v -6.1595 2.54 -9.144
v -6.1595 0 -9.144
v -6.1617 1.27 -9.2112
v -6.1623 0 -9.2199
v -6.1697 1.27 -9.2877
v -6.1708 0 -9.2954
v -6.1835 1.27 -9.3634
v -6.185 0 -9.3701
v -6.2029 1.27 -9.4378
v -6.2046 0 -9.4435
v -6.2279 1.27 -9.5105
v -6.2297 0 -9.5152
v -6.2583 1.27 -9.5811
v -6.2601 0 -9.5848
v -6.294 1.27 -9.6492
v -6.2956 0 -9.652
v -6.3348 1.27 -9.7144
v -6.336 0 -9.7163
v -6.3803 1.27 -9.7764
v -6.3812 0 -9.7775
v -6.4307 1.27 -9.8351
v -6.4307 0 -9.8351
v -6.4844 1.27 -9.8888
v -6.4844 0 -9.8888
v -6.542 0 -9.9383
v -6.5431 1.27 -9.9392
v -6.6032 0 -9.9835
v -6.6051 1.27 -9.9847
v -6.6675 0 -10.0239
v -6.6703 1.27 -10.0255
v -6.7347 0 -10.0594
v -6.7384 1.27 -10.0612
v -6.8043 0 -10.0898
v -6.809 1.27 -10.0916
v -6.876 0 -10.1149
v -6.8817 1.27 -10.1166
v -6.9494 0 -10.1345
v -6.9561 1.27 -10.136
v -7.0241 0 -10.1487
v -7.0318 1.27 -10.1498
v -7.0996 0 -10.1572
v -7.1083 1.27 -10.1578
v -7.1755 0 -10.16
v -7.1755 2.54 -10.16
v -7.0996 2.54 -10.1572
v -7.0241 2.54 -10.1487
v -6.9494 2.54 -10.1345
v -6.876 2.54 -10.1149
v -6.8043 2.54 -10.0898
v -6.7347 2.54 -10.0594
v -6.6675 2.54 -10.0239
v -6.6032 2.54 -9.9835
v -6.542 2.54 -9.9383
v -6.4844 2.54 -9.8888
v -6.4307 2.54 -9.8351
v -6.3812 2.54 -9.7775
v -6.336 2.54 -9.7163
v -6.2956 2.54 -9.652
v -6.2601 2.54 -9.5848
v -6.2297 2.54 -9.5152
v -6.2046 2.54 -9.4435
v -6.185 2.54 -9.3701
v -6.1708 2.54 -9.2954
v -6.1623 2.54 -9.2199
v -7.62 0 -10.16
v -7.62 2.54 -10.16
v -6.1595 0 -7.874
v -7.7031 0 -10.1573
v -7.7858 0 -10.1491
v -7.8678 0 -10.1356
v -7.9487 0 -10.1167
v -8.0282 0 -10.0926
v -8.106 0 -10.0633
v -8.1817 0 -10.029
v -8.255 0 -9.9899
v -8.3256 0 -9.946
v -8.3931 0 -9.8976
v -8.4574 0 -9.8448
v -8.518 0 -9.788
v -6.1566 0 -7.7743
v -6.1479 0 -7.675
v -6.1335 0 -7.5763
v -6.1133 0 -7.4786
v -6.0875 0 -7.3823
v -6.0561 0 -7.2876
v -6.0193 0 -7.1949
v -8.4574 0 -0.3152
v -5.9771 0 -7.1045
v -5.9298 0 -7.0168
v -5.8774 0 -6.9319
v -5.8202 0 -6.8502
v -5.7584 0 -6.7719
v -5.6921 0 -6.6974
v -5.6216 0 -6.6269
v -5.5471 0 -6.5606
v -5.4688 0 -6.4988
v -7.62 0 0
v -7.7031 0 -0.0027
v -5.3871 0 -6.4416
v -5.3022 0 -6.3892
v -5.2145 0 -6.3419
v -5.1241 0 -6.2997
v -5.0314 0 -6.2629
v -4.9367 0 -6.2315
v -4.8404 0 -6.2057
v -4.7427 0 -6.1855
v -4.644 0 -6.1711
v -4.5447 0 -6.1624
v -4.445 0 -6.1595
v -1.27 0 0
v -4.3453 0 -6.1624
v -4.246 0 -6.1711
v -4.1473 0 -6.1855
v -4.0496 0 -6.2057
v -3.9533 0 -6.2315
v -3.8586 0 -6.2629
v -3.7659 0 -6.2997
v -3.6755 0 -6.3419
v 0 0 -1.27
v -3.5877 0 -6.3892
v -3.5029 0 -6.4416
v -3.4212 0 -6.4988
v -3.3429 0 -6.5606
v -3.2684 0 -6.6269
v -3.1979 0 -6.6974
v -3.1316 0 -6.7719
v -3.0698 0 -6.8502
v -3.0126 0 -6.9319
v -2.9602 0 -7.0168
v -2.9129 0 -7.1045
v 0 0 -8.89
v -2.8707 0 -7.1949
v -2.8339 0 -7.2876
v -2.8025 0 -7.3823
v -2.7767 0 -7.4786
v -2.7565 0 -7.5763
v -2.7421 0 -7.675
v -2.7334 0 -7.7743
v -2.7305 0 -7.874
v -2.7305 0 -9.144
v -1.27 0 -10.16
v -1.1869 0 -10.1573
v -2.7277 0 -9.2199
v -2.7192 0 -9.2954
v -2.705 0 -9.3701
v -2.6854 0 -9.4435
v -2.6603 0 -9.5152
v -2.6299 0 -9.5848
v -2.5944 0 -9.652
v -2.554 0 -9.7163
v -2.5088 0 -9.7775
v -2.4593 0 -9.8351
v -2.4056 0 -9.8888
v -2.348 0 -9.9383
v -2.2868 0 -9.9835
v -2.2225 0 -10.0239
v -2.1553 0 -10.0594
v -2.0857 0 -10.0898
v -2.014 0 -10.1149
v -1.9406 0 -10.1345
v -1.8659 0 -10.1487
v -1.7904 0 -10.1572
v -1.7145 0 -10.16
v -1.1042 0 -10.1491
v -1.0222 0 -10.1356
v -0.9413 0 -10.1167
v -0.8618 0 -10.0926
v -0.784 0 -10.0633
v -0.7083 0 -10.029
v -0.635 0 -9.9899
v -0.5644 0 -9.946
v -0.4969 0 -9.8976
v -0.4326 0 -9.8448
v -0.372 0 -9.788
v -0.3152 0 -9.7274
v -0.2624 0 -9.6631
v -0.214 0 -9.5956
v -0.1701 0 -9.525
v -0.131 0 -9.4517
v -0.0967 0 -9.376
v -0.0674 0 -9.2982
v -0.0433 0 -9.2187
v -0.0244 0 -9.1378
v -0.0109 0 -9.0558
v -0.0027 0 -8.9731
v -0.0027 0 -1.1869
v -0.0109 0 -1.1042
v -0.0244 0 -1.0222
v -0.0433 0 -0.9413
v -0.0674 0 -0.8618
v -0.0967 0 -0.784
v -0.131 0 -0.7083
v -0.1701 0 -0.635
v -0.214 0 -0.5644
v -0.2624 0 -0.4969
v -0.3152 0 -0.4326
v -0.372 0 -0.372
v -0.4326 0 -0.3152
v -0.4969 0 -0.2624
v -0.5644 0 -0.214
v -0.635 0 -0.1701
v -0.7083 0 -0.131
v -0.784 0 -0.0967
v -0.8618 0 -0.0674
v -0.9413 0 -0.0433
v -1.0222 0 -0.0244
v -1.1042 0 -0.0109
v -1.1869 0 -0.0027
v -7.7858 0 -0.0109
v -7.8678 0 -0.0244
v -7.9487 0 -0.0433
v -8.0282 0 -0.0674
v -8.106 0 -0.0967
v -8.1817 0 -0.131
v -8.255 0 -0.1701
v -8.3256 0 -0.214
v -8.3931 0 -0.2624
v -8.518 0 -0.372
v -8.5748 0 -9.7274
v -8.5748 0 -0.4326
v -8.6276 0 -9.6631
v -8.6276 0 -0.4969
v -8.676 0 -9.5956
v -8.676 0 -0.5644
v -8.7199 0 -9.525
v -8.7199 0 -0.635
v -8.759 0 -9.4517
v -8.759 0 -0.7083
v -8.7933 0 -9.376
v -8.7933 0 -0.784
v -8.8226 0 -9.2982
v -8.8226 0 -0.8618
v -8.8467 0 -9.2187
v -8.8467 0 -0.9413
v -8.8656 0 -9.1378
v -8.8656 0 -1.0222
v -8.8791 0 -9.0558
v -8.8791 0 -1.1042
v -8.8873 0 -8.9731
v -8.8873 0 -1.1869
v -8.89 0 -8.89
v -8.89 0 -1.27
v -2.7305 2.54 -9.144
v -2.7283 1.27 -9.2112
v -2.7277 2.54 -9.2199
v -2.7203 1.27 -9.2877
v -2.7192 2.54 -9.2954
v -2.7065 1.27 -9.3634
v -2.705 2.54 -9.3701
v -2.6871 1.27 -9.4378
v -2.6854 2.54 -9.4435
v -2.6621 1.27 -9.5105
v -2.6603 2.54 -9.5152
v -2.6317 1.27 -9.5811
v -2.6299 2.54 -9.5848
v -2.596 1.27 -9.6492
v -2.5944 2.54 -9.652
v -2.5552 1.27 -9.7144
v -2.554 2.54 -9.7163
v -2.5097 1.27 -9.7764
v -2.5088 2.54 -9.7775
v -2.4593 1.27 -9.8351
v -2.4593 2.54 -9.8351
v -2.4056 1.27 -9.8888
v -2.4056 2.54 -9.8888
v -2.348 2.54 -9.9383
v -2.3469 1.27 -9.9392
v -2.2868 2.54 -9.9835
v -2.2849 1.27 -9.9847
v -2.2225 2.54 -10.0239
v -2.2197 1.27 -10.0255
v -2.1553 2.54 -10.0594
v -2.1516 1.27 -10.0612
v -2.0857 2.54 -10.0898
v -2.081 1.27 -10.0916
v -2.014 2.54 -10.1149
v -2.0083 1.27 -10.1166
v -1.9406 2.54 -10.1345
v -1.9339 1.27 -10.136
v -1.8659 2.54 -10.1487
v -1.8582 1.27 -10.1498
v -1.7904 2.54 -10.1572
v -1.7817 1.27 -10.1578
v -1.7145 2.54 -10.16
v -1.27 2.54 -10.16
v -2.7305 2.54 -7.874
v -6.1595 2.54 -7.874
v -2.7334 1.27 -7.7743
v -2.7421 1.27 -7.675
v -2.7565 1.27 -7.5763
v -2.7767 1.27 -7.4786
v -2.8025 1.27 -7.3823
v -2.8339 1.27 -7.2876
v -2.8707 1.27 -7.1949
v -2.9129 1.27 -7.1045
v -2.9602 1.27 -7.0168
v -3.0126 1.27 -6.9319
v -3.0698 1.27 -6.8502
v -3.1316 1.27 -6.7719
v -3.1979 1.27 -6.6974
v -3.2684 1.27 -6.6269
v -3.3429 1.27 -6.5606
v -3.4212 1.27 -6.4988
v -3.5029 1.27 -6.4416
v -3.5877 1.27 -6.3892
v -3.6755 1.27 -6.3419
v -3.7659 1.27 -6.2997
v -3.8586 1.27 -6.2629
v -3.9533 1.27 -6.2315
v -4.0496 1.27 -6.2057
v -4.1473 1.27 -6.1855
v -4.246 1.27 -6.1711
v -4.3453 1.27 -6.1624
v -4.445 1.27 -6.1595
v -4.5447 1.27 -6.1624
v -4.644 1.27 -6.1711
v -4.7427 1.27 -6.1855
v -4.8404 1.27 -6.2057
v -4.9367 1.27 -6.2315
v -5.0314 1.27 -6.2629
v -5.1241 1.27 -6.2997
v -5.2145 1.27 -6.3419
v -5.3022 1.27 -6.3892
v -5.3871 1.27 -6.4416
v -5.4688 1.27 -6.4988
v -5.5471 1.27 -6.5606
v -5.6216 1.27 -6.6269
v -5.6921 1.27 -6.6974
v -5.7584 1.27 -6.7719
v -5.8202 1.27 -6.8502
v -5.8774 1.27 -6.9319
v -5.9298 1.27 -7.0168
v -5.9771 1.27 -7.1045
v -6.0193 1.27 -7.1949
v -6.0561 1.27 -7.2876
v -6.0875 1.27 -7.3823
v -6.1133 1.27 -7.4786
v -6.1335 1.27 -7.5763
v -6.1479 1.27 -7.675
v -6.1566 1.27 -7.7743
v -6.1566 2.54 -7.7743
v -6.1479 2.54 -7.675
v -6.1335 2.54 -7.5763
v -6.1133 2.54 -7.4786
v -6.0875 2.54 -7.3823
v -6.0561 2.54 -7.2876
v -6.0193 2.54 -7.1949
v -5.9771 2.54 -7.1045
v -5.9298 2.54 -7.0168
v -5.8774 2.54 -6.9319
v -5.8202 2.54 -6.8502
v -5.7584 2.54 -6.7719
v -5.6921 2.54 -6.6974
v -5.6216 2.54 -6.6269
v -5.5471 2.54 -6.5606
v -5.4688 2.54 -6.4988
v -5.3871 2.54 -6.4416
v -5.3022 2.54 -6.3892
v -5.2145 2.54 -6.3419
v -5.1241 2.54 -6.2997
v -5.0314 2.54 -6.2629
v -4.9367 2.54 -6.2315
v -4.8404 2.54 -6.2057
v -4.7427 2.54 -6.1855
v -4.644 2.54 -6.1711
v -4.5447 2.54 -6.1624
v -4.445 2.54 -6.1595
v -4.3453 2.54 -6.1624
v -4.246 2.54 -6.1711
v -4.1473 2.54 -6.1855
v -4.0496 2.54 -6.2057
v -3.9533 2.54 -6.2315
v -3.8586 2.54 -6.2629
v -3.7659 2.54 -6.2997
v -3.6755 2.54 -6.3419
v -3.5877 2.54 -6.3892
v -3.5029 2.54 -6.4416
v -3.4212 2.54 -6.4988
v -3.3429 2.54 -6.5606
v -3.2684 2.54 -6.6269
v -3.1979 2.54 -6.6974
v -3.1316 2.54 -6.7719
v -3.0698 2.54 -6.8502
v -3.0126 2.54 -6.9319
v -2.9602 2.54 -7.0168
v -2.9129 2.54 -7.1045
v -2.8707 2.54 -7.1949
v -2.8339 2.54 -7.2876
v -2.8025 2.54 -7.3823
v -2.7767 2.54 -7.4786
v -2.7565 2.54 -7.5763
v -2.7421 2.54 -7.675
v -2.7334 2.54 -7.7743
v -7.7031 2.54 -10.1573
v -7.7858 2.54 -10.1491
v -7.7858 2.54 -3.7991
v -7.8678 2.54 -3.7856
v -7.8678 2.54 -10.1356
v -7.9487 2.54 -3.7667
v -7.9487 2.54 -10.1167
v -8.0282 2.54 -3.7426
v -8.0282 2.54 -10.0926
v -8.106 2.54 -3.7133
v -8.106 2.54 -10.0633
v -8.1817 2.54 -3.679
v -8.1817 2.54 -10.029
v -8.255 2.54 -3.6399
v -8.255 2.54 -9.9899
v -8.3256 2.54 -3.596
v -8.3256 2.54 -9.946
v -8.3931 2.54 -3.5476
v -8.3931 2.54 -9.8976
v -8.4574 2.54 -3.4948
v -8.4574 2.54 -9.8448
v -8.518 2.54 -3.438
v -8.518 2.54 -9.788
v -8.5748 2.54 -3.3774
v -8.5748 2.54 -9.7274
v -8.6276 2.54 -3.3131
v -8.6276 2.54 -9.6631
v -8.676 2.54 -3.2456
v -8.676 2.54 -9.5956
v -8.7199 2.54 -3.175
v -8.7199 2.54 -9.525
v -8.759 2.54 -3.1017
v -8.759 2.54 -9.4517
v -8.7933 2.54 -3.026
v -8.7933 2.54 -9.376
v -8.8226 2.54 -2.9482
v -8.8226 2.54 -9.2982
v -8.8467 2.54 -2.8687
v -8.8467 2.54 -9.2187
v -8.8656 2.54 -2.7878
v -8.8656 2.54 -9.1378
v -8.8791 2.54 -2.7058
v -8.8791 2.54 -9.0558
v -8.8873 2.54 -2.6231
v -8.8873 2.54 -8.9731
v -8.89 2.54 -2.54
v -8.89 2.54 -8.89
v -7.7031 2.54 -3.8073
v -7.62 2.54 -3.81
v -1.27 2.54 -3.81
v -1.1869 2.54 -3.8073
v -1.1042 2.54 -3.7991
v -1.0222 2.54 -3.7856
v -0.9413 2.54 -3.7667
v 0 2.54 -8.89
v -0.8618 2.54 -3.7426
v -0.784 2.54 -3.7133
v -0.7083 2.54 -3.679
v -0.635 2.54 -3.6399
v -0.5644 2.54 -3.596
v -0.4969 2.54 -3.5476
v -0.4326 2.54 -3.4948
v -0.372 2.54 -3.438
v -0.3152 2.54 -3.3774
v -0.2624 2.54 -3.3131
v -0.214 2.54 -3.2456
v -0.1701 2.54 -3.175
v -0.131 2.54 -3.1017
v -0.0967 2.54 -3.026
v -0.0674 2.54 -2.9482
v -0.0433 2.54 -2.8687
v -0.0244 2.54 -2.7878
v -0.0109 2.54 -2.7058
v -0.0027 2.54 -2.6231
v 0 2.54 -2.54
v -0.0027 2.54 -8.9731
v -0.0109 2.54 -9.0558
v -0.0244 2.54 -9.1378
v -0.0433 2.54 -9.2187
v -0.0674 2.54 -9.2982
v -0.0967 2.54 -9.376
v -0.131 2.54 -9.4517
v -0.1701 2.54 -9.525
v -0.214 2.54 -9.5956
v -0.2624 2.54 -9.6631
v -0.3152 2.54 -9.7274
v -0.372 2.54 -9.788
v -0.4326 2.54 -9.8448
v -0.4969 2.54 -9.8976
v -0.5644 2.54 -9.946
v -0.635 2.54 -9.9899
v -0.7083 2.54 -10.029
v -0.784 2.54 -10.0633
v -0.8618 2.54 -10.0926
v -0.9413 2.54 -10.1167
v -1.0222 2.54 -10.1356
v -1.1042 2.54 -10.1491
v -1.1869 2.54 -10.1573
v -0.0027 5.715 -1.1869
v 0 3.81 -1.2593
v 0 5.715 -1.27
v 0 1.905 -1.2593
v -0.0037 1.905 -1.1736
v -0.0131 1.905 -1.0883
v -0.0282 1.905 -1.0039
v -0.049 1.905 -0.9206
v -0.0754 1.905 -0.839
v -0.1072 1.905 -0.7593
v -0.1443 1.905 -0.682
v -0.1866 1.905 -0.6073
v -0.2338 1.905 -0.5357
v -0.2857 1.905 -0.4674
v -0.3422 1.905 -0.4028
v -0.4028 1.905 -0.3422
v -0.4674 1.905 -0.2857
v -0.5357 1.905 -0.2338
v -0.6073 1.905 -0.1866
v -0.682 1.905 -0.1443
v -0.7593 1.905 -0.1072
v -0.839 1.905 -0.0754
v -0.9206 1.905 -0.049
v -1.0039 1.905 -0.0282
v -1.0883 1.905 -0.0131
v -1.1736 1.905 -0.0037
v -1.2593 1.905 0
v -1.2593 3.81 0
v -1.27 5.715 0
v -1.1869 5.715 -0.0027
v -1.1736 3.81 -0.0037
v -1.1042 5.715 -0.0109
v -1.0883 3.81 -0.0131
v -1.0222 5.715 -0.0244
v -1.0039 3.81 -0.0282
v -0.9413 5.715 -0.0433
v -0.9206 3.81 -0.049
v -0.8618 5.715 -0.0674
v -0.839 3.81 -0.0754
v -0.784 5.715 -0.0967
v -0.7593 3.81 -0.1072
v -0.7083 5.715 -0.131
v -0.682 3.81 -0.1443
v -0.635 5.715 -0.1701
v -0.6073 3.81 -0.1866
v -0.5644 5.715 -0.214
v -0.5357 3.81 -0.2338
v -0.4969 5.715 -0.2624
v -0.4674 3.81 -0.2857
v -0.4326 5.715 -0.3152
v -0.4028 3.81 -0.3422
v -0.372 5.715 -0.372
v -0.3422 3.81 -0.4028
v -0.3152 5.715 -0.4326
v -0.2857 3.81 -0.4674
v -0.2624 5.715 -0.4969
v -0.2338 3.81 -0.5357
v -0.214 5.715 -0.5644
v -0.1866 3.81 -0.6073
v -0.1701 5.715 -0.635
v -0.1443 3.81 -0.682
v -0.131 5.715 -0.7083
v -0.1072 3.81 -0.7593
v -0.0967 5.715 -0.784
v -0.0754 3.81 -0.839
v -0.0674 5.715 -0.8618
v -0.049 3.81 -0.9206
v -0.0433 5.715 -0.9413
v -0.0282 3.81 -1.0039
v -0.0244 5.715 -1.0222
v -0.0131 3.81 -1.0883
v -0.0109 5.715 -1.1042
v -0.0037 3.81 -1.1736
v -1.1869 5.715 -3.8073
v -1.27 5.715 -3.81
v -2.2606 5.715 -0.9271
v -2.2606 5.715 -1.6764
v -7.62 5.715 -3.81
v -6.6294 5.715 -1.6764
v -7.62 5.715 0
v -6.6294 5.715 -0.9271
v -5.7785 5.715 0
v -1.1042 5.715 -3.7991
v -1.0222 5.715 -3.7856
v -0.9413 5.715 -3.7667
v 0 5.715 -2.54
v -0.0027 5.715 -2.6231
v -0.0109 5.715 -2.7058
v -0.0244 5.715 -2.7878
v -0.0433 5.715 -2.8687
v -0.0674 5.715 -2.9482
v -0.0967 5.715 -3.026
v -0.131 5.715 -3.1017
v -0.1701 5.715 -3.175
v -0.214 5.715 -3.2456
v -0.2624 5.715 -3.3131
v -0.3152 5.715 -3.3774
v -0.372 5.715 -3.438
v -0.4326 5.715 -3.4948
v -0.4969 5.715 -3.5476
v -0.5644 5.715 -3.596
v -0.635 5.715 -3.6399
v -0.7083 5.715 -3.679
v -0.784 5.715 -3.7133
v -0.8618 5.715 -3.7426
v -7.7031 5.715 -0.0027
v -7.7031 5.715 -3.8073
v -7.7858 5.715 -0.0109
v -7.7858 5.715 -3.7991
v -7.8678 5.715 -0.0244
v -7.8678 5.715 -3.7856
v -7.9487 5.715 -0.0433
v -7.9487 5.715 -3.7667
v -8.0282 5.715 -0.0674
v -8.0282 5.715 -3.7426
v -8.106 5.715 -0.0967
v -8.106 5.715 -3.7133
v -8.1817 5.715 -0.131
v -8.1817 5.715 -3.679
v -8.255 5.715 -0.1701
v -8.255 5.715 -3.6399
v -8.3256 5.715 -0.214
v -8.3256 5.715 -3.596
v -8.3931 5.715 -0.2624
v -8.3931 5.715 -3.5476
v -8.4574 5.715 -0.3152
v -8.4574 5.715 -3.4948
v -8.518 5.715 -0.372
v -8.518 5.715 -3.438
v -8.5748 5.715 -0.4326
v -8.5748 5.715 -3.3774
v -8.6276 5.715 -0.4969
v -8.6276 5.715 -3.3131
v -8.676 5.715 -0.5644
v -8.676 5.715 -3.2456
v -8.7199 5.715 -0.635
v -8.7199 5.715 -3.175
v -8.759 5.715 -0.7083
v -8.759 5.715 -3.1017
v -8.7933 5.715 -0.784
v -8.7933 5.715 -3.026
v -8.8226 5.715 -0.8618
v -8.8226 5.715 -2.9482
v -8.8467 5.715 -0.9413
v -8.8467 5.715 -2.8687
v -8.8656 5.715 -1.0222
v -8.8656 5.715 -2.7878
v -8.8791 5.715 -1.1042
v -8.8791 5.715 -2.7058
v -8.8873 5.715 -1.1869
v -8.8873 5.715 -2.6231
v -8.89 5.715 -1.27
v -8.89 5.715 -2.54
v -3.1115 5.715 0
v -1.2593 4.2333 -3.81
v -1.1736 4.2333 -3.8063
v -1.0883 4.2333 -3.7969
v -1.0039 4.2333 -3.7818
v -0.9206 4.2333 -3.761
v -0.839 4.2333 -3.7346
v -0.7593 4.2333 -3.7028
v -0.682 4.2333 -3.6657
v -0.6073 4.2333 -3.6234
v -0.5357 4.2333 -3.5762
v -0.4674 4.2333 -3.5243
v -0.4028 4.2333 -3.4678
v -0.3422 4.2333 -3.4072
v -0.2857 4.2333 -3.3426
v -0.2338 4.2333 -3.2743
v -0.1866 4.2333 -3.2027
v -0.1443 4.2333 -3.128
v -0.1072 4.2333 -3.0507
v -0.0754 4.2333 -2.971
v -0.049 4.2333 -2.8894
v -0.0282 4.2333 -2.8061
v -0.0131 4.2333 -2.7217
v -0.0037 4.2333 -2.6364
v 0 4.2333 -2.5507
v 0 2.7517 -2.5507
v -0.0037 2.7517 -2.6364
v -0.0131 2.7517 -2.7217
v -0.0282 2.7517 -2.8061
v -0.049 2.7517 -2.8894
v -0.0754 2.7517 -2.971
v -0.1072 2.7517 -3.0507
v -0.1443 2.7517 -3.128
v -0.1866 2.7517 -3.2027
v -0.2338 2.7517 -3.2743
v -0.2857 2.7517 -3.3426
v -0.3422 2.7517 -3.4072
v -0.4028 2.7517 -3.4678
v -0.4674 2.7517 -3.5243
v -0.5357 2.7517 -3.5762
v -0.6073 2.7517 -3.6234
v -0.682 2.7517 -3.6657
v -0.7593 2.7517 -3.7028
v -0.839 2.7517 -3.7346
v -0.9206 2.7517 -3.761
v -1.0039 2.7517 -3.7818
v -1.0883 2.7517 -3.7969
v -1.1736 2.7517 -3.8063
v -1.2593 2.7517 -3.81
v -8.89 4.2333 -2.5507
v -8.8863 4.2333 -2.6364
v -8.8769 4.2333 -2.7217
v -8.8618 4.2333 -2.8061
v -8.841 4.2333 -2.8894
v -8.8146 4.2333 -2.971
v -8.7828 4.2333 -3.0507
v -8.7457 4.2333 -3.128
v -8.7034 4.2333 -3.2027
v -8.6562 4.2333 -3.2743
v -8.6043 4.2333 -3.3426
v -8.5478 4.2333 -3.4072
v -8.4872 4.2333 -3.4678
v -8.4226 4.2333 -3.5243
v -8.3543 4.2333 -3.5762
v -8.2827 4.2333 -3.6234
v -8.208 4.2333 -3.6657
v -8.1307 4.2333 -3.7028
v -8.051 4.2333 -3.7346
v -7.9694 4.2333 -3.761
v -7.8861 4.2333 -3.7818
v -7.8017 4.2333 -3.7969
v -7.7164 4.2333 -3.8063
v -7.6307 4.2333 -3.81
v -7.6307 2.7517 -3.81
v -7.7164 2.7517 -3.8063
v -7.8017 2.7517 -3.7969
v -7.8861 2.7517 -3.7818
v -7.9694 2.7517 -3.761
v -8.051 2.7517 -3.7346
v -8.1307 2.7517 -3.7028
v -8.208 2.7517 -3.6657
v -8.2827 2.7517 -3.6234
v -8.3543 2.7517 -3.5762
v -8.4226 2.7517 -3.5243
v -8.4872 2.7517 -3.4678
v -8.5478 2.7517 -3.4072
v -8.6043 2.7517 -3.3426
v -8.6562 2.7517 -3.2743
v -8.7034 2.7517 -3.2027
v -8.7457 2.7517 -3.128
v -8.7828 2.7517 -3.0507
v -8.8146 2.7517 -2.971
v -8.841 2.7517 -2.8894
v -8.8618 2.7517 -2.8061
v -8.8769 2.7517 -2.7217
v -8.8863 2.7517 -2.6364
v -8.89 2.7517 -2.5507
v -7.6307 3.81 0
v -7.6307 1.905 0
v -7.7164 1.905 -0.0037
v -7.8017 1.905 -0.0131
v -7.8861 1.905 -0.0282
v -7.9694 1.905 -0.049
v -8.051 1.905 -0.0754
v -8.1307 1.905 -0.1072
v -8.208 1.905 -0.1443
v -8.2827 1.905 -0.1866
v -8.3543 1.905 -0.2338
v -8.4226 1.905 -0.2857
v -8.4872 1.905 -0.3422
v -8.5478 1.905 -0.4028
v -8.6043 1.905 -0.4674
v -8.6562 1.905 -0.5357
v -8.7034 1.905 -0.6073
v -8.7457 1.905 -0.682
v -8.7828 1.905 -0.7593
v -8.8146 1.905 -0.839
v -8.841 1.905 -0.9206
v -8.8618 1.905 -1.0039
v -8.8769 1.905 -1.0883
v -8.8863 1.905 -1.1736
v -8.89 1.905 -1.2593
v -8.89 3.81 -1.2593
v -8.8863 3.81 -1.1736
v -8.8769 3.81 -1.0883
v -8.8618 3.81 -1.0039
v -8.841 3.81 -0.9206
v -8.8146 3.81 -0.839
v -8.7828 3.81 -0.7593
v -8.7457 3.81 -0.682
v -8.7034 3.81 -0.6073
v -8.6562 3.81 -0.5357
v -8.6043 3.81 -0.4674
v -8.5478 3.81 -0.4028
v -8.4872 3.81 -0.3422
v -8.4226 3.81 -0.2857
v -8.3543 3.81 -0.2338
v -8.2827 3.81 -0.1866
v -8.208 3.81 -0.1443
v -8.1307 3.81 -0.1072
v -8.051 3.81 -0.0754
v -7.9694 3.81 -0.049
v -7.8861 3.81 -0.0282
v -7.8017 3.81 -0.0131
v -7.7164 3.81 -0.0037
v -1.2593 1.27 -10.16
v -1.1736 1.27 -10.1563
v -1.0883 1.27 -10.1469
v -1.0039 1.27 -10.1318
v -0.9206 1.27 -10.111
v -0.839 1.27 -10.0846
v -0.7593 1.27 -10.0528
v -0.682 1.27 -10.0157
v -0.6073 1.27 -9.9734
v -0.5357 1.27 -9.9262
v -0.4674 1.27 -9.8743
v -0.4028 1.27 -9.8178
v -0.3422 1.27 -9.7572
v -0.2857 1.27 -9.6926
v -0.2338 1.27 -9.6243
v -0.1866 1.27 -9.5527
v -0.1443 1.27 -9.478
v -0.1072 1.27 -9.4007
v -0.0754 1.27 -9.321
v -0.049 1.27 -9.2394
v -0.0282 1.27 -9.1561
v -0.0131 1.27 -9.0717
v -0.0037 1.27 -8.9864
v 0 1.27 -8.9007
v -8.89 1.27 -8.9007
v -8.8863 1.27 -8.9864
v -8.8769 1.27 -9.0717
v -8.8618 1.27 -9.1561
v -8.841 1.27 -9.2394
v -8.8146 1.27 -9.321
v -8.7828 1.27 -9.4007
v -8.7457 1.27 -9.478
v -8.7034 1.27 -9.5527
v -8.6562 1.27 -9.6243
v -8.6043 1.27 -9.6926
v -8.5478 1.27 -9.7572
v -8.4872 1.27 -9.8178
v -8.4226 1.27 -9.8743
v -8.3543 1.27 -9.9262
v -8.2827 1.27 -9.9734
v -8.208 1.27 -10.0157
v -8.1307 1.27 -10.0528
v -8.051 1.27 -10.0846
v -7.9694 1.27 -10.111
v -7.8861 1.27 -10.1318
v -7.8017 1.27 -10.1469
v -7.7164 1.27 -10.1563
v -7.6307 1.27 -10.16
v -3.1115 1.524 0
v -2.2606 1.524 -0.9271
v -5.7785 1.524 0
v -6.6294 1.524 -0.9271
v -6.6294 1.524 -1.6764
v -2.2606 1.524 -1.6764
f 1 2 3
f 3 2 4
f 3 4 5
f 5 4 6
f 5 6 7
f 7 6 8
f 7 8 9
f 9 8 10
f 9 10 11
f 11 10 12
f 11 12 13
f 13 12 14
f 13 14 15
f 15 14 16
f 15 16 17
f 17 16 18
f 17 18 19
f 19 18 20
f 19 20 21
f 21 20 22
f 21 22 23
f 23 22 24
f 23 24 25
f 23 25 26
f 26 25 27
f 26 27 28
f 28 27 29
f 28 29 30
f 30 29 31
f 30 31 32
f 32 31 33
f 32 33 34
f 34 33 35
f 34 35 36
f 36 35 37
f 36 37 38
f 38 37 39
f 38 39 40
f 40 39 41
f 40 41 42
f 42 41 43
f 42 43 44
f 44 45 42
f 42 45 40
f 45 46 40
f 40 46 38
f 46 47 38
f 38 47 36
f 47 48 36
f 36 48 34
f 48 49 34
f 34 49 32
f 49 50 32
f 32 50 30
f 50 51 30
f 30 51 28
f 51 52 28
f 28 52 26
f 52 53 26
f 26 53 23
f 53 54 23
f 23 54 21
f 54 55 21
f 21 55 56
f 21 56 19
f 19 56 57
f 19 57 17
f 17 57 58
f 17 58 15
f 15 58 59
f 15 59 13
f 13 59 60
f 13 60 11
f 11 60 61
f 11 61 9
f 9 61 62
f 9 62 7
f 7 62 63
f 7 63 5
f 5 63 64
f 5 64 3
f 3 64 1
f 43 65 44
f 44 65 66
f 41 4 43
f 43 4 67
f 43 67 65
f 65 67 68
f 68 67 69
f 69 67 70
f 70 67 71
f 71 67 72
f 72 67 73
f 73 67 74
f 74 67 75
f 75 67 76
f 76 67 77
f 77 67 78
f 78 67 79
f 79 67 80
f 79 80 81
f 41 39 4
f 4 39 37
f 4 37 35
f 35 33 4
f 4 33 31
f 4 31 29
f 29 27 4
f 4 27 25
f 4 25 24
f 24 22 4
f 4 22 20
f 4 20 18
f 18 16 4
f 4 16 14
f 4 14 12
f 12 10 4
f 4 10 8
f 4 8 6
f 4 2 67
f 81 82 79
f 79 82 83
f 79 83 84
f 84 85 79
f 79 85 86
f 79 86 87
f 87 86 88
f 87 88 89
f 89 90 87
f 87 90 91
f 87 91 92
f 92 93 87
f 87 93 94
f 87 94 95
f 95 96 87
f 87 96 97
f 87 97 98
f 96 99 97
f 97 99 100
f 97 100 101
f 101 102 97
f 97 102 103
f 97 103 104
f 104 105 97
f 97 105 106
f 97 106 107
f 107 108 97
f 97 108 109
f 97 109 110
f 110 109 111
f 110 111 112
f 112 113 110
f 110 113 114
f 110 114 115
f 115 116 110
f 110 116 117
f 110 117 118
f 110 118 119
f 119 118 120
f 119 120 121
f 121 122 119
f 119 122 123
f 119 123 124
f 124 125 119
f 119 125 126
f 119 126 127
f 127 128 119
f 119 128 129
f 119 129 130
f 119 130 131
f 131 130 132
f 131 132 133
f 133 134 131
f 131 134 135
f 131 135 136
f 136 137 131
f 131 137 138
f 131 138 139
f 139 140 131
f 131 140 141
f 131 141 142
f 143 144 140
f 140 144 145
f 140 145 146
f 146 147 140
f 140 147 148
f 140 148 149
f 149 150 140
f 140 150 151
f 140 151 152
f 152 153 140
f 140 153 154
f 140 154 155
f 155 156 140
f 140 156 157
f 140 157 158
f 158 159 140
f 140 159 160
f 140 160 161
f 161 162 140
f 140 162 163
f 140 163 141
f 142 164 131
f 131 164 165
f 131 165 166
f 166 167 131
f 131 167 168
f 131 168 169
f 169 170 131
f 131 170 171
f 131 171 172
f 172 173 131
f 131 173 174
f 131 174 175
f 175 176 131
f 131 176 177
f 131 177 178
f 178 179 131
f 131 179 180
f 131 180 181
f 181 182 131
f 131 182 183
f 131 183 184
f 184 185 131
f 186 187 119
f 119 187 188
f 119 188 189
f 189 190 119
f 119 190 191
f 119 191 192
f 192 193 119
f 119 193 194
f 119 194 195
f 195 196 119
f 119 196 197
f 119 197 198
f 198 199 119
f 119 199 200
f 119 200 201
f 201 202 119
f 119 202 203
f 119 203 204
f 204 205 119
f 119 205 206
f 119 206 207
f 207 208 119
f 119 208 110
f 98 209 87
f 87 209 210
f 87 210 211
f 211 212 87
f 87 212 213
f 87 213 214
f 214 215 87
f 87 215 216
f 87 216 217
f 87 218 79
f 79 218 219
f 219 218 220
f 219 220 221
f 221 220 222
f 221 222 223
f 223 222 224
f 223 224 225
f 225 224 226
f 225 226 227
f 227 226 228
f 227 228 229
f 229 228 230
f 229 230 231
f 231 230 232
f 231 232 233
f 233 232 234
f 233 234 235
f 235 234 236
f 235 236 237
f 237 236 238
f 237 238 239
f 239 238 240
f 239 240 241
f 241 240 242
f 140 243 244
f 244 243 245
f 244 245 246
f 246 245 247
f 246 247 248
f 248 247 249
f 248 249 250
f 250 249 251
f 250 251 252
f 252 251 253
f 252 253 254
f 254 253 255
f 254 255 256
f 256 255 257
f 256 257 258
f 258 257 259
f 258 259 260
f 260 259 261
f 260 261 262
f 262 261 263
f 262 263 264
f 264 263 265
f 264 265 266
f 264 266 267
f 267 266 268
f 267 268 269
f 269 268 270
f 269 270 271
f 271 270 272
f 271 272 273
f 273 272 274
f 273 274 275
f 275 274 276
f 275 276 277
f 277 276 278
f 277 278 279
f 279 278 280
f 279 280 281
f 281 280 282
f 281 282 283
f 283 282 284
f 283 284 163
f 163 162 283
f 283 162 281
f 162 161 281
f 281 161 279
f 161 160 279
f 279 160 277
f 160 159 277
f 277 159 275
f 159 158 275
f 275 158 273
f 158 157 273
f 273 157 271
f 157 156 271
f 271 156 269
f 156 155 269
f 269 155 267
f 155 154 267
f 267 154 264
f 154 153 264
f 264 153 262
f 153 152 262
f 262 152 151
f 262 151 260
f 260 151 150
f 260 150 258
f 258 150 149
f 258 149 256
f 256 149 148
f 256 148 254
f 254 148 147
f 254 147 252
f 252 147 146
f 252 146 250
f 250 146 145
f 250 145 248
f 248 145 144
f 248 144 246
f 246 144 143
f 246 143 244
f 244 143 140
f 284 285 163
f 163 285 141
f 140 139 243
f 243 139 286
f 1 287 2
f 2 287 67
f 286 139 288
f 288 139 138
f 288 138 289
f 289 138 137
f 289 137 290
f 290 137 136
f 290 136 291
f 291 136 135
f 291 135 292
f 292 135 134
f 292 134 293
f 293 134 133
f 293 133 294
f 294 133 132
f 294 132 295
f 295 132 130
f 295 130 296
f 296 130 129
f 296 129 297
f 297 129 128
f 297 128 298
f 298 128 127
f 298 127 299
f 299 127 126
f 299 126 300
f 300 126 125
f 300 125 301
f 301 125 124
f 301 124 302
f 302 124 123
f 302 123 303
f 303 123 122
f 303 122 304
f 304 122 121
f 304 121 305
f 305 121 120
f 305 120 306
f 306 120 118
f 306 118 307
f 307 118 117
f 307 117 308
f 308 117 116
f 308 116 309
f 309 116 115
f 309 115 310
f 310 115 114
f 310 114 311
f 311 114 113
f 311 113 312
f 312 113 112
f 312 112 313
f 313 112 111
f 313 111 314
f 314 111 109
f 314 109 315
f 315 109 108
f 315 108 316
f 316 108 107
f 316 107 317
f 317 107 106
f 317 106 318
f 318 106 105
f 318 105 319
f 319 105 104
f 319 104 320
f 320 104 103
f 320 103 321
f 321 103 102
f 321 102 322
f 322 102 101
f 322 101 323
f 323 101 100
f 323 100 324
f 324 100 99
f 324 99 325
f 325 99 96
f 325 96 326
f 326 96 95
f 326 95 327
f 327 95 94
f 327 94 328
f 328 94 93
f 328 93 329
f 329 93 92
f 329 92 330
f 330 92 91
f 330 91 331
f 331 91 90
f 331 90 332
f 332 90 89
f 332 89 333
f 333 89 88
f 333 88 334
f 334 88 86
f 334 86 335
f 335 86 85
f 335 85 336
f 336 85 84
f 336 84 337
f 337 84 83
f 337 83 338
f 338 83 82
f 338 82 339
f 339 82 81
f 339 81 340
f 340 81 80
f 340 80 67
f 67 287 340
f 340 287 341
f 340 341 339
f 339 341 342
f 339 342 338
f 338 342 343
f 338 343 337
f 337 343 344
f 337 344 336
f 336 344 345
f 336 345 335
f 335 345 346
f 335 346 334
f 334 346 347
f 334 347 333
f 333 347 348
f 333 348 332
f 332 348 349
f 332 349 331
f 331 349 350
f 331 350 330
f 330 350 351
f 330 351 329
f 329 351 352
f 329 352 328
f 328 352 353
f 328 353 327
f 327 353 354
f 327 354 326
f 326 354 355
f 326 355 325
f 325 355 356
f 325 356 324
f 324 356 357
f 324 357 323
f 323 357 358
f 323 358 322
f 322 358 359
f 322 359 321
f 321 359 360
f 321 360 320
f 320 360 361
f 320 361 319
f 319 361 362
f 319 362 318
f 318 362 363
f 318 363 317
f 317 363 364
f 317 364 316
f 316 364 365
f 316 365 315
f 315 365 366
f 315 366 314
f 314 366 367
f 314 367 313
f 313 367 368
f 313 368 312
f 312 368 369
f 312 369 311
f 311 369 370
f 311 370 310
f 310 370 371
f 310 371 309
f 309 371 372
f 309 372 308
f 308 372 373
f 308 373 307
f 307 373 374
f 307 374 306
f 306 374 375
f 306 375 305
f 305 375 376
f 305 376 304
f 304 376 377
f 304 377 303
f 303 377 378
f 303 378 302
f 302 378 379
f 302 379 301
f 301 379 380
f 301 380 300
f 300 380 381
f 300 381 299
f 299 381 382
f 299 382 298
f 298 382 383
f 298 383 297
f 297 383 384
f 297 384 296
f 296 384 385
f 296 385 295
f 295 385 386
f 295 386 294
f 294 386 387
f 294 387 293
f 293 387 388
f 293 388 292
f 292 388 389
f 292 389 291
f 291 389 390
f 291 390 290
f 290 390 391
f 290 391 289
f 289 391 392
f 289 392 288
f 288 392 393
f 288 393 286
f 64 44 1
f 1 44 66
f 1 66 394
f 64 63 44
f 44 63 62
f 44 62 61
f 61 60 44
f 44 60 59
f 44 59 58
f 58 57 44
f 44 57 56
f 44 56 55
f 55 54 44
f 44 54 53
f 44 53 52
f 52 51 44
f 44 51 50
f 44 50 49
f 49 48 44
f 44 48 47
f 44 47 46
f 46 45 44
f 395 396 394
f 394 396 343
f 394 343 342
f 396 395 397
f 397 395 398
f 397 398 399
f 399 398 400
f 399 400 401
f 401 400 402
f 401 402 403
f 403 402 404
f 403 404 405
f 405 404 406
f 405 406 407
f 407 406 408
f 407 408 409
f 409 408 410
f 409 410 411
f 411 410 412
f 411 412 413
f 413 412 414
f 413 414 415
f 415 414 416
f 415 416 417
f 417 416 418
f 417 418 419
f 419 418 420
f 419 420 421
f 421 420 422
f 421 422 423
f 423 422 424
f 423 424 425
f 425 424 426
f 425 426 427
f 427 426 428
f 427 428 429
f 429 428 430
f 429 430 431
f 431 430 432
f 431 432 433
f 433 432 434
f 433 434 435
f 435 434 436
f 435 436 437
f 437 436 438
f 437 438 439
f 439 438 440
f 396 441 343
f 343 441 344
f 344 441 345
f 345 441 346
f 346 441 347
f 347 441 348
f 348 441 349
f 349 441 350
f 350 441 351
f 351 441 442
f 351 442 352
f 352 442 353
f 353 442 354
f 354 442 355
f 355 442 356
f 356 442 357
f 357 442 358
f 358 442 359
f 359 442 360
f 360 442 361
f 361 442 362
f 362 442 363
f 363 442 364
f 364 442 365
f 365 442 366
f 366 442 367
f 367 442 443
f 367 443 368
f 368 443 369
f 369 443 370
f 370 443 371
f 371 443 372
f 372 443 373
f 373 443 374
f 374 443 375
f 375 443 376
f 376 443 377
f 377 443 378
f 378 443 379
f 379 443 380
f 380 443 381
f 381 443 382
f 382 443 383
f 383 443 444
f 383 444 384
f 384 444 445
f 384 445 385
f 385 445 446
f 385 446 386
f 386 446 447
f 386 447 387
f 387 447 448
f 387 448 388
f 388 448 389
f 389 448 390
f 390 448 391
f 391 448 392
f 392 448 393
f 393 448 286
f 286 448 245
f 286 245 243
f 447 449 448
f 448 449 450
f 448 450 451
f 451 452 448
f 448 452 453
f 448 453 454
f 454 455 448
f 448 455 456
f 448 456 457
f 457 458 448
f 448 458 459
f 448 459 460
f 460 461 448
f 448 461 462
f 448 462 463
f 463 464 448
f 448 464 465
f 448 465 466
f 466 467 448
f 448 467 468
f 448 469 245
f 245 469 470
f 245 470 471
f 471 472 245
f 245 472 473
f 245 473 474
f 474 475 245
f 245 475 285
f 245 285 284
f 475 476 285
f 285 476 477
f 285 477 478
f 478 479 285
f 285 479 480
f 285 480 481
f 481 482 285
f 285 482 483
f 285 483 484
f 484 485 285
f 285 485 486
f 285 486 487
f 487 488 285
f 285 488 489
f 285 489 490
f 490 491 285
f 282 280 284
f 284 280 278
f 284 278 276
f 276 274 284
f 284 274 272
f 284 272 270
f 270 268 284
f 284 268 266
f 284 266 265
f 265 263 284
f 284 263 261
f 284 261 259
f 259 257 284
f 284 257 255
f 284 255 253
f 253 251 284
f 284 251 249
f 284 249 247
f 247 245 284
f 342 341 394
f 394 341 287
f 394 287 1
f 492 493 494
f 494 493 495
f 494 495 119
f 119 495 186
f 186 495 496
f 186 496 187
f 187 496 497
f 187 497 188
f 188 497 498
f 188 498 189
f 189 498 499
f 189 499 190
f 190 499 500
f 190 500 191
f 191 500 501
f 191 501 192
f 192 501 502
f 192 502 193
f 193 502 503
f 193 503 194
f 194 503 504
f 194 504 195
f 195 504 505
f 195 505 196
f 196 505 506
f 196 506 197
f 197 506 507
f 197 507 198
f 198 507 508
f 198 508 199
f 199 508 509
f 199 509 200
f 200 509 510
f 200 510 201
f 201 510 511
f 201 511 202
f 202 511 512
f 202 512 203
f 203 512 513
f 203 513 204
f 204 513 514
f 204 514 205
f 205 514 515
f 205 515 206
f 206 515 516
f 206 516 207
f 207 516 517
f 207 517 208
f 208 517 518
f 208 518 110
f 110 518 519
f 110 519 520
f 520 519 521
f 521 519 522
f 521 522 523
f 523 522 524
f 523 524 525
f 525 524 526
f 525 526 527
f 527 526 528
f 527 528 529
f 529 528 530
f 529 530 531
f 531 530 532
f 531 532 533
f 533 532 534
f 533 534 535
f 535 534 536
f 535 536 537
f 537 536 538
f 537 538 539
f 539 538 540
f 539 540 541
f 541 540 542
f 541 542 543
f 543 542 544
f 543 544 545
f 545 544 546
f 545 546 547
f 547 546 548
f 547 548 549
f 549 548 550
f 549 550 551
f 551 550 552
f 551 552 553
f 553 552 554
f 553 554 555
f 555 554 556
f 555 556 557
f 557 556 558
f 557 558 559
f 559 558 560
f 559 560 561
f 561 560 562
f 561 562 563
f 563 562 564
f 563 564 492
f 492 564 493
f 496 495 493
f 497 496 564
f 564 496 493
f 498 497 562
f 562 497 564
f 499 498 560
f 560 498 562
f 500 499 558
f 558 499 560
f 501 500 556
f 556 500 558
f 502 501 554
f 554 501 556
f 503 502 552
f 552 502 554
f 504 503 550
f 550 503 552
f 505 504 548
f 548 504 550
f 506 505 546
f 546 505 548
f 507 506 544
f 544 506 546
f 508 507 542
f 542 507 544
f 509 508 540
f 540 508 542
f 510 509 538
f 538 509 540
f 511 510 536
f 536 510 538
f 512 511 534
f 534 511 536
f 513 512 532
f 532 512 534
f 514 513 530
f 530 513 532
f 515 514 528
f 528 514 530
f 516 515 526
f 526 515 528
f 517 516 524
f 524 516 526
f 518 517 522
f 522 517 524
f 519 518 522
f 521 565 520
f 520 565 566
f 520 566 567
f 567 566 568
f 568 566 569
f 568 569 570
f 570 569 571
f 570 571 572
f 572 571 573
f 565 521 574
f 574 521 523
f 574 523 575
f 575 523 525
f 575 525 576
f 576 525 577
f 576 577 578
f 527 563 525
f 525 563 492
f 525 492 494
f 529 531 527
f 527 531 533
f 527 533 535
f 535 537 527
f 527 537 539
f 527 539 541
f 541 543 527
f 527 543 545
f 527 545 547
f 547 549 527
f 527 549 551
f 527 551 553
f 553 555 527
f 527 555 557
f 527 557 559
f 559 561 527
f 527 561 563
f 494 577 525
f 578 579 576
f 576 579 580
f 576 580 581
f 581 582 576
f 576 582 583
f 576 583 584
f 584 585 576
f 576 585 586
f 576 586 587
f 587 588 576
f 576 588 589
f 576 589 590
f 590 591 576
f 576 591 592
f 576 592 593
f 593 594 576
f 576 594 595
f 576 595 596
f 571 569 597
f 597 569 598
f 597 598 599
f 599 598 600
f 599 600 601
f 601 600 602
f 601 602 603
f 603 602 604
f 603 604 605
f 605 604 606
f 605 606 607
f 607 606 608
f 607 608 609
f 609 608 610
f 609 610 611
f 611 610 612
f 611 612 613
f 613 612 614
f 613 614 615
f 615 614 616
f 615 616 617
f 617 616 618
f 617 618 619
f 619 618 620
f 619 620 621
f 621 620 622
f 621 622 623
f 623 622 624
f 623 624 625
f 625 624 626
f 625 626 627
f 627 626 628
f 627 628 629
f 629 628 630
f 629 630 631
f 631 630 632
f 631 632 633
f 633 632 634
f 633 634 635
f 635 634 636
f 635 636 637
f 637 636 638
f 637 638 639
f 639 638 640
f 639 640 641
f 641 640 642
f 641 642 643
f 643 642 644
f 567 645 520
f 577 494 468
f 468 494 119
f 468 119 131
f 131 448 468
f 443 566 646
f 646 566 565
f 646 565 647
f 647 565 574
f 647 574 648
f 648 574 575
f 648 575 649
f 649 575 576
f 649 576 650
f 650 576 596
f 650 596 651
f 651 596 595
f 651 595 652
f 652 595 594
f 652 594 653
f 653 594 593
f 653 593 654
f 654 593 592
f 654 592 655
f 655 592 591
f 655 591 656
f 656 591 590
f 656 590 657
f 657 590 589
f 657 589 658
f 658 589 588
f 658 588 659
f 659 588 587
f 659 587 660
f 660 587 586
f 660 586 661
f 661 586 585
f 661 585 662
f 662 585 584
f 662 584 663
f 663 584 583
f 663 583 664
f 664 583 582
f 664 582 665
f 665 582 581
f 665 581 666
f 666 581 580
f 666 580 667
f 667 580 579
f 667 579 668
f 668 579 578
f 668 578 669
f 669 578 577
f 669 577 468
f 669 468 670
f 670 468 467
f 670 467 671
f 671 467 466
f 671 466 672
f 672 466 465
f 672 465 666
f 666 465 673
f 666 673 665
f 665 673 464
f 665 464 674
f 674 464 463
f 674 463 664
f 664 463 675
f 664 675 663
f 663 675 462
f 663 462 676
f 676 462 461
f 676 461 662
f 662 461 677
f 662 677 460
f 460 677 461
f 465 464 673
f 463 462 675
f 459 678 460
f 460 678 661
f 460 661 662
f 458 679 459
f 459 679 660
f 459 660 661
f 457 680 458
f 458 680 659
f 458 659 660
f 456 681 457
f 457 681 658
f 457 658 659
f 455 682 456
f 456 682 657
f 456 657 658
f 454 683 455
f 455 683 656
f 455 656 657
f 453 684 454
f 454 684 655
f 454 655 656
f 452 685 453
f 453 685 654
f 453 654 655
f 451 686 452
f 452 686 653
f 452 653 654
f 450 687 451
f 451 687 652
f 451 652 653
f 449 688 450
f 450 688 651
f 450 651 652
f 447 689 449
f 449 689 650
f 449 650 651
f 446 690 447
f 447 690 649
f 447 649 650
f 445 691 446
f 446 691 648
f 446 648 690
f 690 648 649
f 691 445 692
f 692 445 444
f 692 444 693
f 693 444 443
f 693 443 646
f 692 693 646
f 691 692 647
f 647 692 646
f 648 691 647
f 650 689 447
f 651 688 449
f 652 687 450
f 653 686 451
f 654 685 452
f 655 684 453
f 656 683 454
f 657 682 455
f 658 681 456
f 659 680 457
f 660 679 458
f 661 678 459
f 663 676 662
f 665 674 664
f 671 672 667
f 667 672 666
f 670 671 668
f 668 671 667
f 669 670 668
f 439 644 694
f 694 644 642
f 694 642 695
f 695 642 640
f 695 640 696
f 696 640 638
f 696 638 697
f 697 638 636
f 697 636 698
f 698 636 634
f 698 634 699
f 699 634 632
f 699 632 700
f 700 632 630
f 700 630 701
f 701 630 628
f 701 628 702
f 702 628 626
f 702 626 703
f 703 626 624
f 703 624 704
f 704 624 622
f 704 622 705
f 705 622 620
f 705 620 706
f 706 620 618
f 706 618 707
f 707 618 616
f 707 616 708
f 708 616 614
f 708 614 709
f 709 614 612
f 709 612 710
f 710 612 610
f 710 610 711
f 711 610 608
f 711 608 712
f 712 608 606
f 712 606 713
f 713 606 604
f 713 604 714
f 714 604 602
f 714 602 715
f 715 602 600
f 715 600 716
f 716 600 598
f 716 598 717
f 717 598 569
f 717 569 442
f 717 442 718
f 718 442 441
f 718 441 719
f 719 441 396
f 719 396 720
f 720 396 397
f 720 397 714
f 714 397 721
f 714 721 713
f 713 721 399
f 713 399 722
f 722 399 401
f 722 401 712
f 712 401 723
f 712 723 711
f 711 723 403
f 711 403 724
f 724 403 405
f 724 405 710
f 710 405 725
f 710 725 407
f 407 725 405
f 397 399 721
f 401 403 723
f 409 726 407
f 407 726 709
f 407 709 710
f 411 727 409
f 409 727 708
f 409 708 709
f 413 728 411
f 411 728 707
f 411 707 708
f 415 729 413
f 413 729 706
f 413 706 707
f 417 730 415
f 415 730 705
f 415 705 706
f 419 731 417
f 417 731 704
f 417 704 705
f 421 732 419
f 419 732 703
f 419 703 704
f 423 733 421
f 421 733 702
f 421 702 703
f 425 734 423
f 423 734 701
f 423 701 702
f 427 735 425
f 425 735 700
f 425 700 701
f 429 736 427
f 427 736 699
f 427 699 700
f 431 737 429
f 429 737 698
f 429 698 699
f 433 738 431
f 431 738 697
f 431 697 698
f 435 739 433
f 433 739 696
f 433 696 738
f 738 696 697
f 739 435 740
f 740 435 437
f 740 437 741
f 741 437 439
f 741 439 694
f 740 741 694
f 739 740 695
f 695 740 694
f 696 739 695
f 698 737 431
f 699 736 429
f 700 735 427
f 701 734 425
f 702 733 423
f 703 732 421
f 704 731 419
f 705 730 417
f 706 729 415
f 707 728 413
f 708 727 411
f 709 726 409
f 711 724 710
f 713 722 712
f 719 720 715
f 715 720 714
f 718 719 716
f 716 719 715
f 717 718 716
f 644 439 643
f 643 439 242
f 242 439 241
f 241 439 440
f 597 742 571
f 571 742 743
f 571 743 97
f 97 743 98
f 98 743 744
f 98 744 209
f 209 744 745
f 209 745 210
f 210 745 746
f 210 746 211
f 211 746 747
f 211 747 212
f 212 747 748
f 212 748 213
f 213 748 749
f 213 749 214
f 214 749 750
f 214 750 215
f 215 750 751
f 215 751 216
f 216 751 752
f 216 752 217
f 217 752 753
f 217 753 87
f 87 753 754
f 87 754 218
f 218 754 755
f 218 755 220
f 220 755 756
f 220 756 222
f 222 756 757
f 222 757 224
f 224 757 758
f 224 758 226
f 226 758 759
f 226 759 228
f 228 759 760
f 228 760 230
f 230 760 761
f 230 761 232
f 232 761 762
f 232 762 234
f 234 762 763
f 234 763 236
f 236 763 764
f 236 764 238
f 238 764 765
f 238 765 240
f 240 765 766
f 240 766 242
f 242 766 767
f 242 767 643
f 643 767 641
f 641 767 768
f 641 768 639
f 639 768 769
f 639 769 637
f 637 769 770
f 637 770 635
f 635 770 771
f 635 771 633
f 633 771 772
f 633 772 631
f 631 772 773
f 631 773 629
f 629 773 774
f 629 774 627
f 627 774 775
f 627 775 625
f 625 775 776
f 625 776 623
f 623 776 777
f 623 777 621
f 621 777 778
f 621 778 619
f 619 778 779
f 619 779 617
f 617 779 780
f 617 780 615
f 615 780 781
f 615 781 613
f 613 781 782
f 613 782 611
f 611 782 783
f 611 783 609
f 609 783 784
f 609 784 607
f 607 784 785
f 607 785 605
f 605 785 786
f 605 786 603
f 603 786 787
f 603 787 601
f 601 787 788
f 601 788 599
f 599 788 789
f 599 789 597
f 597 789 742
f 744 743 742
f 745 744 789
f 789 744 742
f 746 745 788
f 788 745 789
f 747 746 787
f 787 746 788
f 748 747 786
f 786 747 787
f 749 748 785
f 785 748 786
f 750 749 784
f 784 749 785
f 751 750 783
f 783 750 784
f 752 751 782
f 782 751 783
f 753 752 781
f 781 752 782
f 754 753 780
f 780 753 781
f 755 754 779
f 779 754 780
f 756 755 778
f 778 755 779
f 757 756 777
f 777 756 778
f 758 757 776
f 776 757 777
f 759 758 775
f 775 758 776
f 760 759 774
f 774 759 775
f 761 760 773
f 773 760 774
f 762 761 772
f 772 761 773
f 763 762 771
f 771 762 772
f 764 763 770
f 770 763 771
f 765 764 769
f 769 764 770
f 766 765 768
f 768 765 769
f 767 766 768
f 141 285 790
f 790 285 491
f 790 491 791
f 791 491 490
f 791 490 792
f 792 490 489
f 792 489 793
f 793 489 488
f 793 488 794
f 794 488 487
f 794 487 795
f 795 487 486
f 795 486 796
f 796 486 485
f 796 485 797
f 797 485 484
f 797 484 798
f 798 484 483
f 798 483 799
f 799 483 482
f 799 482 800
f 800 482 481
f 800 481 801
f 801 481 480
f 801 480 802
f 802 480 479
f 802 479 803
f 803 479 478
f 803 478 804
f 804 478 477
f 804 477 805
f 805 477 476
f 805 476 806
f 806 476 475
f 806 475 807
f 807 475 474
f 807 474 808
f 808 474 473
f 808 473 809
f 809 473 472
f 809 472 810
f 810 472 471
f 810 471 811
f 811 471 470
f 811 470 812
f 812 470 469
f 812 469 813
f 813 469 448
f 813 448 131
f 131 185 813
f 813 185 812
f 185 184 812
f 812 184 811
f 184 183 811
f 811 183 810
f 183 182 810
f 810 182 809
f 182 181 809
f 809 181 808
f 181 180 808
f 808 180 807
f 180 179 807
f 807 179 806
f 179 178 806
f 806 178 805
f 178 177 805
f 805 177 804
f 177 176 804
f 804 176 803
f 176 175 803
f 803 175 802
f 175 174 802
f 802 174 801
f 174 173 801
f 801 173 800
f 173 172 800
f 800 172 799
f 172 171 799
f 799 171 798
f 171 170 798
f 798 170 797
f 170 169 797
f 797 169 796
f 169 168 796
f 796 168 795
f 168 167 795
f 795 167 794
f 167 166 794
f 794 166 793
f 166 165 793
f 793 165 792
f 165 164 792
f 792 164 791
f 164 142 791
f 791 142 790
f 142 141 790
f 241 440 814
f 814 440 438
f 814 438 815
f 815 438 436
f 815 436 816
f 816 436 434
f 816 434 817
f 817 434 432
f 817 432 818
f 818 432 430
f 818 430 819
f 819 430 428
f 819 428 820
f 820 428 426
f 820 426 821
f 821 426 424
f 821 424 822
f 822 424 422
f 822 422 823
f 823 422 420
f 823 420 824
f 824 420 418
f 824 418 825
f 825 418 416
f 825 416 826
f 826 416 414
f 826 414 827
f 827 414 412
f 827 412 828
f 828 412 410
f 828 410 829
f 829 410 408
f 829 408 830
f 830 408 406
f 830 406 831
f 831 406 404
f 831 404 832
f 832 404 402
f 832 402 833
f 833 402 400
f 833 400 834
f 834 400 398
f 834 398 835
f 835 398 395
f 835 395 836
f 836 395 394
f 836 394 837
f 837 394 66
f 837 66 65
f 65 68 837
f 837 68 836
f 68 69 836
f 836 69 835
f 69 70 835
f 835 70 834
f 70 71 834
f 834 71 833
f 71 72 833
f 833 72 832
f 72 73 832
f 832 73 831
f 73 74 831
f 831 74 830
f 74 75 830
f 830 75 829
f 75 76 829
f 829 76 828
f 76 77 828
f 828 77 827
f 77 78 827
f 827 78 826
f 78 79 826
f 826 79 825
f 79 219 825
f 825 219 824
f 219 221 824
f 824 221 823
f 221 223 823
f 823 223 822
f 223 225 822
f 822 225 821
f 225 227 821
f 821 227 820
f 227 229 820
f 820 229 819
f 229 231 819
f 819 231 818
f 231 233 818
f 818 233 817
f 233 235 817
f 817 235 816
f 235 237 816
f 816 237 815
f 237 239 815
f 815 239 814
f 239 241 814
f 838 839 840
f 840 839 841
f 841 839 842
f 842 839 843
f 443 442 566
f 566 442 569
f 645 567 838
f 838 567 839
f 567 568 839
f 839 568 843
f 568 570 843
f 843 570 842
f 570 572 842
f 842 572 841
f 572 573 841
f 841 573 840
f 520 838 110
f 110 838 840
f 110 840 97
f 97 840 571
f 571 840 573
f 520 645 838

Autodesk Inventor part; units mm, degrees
ref_plane "YZ Plane" through (0, 0, 0) normal (1, 0, 0) x (0, 1, 0)
ref_plane "XZ Plane" through (0, 0, 0) normal (0, 1, 0) x (-1, 0, 0)
ref_plane "XY Plane" through (0, 0, 0) normal (0, 0, 1) x (1, 0, 0)
sketch "Sketch1" plane through (0, 0, 0) normal (0, 1, 0) x (-1, 0, 0)
  line L0 (0, 0) -> (8.89, 0)
  line L1 (8.89, 0) -> (8.89, -10.16)
  line L2 (8.89, -10.16) -> (0, -10.16)
  line L3 (0, -10.16) -> (0, 0)
  dimension "d0" = 8.89
  dimension "d1" = 10.16
extrude "Extrusion1" add sketch "Sketch1" along normal blind 2.54
sketch "Sketch5" plane through (0, 2.54, 0) normal (0, 1, 0) x (1, 0, 0)
  line L0 (-8.89, 0) -> (0, 0) projected
  line L1 (0, 0) -> (0, 10.16) projected
  line L2 (0, 10.16) -> (-8.89, 10.16) projected
  line L3 (-8.89, 10.16) -> (-8.89, 0) projected
  line L4 (0, 0) -> (-8.89, 0) projected
  line L5 (-5.7785, 0) -> (-6.6294, 0.9271)
  line L6 (-6.6294, 0.9271) -> (-6.6294, 1.6764)
  line L7 (-6.6294, 1.6764) -> (-2.2606, 1.6764)
  line L8 (-2.2606, 1.6764) -> (-2.2606, 0.9271)
  line L9 (-2.2606, 0.9271) -> (-3.1115, 0)
  line L10 (-8.89, 0) -> (-8.89, 10.16) projected
  line L11 (-8.89, 3.81) -> (0, 3.81)
  point P0 (-4.445, 1.6764)
  point P1 (-4.445, 3.81)
  dimension "d19" = 2.667
  dimension "d20" = 4.3688
  dimension "d21" = 0.9271
  dimension "d23" = 1.6764
  dimension "d24" = 3.81
extrude "Extrusion4" add sketch "Sketch5" along normal blind 3.175 contours L3 L11 L1 L0 L9 L8 L7 L6 L5
sketch "Sketch6" plane through (0, 2.54, 0) normal (0, 1, 0) x (1, 0, 0)
  line L0 (-3.1115, 0) -> (-2.2606, 0.9271) projected
  line L1 (-2.2606, 0.9271) -> (-2.2606, 1.6764) projected
  line L2 (-2.2606, 1.6764) -> (-6.6294, 1.6764) projected
  line L3 (-6.6294, 1.6764) -> (-6.6294, 0.9271) projected
  line L4 (-6.6294, 0.9271) -> (-5.7785, 0) projected
  line L5 (-5.7785, 0) -> (-3.1115, 0) projected
  point P0 (0, 0)
extrude "Extrusion5" cut sketch "Sketch6" against normal blind 1.016
fillet "Fillet3" radius 1.27 6 edges at (-8.89, 1.27, -10.16) (0, 1.27, -10.16) (-8.89, 2.8575, 0) (-8.89, 4.1275, -3.81) (0, 4.1275, -3.81) (0, 2.8575, 0)
sketch "Sketch8" plane through (0, 2.54, 0) normal (0, 1, 0) x (1, 0, 0)
  line L0 (-7.62, 10.16) -> (-1.27, 10.16) projected
  line L1 (-6.1595, 10.16) -> (-6.1595, 7.874)
  line L2 (-2.7305, 10.16) -> (-2.7305, 7.874)
  arc A0 (-6.1595, 7.874) -> (-2.7305, 7.874) centre (-4.445, 7.874) ccw
  point P0 (0, 0)
  point P1 (-4.445, 10.16)
  dimension "d37" = 3.429
  dimension "d38" = 2.286
extrude "Extrusion7" cut sketch "Sketch8" against normal blind 25.4
fillet "Fillet4" radius 1.016 2 edges at (-2.7305, 1.27, -10.16) (-6.1595, 1.27, -10.16)
properties part number "HallEffectSpoolSensorMount3" material "ABS Plastic"
